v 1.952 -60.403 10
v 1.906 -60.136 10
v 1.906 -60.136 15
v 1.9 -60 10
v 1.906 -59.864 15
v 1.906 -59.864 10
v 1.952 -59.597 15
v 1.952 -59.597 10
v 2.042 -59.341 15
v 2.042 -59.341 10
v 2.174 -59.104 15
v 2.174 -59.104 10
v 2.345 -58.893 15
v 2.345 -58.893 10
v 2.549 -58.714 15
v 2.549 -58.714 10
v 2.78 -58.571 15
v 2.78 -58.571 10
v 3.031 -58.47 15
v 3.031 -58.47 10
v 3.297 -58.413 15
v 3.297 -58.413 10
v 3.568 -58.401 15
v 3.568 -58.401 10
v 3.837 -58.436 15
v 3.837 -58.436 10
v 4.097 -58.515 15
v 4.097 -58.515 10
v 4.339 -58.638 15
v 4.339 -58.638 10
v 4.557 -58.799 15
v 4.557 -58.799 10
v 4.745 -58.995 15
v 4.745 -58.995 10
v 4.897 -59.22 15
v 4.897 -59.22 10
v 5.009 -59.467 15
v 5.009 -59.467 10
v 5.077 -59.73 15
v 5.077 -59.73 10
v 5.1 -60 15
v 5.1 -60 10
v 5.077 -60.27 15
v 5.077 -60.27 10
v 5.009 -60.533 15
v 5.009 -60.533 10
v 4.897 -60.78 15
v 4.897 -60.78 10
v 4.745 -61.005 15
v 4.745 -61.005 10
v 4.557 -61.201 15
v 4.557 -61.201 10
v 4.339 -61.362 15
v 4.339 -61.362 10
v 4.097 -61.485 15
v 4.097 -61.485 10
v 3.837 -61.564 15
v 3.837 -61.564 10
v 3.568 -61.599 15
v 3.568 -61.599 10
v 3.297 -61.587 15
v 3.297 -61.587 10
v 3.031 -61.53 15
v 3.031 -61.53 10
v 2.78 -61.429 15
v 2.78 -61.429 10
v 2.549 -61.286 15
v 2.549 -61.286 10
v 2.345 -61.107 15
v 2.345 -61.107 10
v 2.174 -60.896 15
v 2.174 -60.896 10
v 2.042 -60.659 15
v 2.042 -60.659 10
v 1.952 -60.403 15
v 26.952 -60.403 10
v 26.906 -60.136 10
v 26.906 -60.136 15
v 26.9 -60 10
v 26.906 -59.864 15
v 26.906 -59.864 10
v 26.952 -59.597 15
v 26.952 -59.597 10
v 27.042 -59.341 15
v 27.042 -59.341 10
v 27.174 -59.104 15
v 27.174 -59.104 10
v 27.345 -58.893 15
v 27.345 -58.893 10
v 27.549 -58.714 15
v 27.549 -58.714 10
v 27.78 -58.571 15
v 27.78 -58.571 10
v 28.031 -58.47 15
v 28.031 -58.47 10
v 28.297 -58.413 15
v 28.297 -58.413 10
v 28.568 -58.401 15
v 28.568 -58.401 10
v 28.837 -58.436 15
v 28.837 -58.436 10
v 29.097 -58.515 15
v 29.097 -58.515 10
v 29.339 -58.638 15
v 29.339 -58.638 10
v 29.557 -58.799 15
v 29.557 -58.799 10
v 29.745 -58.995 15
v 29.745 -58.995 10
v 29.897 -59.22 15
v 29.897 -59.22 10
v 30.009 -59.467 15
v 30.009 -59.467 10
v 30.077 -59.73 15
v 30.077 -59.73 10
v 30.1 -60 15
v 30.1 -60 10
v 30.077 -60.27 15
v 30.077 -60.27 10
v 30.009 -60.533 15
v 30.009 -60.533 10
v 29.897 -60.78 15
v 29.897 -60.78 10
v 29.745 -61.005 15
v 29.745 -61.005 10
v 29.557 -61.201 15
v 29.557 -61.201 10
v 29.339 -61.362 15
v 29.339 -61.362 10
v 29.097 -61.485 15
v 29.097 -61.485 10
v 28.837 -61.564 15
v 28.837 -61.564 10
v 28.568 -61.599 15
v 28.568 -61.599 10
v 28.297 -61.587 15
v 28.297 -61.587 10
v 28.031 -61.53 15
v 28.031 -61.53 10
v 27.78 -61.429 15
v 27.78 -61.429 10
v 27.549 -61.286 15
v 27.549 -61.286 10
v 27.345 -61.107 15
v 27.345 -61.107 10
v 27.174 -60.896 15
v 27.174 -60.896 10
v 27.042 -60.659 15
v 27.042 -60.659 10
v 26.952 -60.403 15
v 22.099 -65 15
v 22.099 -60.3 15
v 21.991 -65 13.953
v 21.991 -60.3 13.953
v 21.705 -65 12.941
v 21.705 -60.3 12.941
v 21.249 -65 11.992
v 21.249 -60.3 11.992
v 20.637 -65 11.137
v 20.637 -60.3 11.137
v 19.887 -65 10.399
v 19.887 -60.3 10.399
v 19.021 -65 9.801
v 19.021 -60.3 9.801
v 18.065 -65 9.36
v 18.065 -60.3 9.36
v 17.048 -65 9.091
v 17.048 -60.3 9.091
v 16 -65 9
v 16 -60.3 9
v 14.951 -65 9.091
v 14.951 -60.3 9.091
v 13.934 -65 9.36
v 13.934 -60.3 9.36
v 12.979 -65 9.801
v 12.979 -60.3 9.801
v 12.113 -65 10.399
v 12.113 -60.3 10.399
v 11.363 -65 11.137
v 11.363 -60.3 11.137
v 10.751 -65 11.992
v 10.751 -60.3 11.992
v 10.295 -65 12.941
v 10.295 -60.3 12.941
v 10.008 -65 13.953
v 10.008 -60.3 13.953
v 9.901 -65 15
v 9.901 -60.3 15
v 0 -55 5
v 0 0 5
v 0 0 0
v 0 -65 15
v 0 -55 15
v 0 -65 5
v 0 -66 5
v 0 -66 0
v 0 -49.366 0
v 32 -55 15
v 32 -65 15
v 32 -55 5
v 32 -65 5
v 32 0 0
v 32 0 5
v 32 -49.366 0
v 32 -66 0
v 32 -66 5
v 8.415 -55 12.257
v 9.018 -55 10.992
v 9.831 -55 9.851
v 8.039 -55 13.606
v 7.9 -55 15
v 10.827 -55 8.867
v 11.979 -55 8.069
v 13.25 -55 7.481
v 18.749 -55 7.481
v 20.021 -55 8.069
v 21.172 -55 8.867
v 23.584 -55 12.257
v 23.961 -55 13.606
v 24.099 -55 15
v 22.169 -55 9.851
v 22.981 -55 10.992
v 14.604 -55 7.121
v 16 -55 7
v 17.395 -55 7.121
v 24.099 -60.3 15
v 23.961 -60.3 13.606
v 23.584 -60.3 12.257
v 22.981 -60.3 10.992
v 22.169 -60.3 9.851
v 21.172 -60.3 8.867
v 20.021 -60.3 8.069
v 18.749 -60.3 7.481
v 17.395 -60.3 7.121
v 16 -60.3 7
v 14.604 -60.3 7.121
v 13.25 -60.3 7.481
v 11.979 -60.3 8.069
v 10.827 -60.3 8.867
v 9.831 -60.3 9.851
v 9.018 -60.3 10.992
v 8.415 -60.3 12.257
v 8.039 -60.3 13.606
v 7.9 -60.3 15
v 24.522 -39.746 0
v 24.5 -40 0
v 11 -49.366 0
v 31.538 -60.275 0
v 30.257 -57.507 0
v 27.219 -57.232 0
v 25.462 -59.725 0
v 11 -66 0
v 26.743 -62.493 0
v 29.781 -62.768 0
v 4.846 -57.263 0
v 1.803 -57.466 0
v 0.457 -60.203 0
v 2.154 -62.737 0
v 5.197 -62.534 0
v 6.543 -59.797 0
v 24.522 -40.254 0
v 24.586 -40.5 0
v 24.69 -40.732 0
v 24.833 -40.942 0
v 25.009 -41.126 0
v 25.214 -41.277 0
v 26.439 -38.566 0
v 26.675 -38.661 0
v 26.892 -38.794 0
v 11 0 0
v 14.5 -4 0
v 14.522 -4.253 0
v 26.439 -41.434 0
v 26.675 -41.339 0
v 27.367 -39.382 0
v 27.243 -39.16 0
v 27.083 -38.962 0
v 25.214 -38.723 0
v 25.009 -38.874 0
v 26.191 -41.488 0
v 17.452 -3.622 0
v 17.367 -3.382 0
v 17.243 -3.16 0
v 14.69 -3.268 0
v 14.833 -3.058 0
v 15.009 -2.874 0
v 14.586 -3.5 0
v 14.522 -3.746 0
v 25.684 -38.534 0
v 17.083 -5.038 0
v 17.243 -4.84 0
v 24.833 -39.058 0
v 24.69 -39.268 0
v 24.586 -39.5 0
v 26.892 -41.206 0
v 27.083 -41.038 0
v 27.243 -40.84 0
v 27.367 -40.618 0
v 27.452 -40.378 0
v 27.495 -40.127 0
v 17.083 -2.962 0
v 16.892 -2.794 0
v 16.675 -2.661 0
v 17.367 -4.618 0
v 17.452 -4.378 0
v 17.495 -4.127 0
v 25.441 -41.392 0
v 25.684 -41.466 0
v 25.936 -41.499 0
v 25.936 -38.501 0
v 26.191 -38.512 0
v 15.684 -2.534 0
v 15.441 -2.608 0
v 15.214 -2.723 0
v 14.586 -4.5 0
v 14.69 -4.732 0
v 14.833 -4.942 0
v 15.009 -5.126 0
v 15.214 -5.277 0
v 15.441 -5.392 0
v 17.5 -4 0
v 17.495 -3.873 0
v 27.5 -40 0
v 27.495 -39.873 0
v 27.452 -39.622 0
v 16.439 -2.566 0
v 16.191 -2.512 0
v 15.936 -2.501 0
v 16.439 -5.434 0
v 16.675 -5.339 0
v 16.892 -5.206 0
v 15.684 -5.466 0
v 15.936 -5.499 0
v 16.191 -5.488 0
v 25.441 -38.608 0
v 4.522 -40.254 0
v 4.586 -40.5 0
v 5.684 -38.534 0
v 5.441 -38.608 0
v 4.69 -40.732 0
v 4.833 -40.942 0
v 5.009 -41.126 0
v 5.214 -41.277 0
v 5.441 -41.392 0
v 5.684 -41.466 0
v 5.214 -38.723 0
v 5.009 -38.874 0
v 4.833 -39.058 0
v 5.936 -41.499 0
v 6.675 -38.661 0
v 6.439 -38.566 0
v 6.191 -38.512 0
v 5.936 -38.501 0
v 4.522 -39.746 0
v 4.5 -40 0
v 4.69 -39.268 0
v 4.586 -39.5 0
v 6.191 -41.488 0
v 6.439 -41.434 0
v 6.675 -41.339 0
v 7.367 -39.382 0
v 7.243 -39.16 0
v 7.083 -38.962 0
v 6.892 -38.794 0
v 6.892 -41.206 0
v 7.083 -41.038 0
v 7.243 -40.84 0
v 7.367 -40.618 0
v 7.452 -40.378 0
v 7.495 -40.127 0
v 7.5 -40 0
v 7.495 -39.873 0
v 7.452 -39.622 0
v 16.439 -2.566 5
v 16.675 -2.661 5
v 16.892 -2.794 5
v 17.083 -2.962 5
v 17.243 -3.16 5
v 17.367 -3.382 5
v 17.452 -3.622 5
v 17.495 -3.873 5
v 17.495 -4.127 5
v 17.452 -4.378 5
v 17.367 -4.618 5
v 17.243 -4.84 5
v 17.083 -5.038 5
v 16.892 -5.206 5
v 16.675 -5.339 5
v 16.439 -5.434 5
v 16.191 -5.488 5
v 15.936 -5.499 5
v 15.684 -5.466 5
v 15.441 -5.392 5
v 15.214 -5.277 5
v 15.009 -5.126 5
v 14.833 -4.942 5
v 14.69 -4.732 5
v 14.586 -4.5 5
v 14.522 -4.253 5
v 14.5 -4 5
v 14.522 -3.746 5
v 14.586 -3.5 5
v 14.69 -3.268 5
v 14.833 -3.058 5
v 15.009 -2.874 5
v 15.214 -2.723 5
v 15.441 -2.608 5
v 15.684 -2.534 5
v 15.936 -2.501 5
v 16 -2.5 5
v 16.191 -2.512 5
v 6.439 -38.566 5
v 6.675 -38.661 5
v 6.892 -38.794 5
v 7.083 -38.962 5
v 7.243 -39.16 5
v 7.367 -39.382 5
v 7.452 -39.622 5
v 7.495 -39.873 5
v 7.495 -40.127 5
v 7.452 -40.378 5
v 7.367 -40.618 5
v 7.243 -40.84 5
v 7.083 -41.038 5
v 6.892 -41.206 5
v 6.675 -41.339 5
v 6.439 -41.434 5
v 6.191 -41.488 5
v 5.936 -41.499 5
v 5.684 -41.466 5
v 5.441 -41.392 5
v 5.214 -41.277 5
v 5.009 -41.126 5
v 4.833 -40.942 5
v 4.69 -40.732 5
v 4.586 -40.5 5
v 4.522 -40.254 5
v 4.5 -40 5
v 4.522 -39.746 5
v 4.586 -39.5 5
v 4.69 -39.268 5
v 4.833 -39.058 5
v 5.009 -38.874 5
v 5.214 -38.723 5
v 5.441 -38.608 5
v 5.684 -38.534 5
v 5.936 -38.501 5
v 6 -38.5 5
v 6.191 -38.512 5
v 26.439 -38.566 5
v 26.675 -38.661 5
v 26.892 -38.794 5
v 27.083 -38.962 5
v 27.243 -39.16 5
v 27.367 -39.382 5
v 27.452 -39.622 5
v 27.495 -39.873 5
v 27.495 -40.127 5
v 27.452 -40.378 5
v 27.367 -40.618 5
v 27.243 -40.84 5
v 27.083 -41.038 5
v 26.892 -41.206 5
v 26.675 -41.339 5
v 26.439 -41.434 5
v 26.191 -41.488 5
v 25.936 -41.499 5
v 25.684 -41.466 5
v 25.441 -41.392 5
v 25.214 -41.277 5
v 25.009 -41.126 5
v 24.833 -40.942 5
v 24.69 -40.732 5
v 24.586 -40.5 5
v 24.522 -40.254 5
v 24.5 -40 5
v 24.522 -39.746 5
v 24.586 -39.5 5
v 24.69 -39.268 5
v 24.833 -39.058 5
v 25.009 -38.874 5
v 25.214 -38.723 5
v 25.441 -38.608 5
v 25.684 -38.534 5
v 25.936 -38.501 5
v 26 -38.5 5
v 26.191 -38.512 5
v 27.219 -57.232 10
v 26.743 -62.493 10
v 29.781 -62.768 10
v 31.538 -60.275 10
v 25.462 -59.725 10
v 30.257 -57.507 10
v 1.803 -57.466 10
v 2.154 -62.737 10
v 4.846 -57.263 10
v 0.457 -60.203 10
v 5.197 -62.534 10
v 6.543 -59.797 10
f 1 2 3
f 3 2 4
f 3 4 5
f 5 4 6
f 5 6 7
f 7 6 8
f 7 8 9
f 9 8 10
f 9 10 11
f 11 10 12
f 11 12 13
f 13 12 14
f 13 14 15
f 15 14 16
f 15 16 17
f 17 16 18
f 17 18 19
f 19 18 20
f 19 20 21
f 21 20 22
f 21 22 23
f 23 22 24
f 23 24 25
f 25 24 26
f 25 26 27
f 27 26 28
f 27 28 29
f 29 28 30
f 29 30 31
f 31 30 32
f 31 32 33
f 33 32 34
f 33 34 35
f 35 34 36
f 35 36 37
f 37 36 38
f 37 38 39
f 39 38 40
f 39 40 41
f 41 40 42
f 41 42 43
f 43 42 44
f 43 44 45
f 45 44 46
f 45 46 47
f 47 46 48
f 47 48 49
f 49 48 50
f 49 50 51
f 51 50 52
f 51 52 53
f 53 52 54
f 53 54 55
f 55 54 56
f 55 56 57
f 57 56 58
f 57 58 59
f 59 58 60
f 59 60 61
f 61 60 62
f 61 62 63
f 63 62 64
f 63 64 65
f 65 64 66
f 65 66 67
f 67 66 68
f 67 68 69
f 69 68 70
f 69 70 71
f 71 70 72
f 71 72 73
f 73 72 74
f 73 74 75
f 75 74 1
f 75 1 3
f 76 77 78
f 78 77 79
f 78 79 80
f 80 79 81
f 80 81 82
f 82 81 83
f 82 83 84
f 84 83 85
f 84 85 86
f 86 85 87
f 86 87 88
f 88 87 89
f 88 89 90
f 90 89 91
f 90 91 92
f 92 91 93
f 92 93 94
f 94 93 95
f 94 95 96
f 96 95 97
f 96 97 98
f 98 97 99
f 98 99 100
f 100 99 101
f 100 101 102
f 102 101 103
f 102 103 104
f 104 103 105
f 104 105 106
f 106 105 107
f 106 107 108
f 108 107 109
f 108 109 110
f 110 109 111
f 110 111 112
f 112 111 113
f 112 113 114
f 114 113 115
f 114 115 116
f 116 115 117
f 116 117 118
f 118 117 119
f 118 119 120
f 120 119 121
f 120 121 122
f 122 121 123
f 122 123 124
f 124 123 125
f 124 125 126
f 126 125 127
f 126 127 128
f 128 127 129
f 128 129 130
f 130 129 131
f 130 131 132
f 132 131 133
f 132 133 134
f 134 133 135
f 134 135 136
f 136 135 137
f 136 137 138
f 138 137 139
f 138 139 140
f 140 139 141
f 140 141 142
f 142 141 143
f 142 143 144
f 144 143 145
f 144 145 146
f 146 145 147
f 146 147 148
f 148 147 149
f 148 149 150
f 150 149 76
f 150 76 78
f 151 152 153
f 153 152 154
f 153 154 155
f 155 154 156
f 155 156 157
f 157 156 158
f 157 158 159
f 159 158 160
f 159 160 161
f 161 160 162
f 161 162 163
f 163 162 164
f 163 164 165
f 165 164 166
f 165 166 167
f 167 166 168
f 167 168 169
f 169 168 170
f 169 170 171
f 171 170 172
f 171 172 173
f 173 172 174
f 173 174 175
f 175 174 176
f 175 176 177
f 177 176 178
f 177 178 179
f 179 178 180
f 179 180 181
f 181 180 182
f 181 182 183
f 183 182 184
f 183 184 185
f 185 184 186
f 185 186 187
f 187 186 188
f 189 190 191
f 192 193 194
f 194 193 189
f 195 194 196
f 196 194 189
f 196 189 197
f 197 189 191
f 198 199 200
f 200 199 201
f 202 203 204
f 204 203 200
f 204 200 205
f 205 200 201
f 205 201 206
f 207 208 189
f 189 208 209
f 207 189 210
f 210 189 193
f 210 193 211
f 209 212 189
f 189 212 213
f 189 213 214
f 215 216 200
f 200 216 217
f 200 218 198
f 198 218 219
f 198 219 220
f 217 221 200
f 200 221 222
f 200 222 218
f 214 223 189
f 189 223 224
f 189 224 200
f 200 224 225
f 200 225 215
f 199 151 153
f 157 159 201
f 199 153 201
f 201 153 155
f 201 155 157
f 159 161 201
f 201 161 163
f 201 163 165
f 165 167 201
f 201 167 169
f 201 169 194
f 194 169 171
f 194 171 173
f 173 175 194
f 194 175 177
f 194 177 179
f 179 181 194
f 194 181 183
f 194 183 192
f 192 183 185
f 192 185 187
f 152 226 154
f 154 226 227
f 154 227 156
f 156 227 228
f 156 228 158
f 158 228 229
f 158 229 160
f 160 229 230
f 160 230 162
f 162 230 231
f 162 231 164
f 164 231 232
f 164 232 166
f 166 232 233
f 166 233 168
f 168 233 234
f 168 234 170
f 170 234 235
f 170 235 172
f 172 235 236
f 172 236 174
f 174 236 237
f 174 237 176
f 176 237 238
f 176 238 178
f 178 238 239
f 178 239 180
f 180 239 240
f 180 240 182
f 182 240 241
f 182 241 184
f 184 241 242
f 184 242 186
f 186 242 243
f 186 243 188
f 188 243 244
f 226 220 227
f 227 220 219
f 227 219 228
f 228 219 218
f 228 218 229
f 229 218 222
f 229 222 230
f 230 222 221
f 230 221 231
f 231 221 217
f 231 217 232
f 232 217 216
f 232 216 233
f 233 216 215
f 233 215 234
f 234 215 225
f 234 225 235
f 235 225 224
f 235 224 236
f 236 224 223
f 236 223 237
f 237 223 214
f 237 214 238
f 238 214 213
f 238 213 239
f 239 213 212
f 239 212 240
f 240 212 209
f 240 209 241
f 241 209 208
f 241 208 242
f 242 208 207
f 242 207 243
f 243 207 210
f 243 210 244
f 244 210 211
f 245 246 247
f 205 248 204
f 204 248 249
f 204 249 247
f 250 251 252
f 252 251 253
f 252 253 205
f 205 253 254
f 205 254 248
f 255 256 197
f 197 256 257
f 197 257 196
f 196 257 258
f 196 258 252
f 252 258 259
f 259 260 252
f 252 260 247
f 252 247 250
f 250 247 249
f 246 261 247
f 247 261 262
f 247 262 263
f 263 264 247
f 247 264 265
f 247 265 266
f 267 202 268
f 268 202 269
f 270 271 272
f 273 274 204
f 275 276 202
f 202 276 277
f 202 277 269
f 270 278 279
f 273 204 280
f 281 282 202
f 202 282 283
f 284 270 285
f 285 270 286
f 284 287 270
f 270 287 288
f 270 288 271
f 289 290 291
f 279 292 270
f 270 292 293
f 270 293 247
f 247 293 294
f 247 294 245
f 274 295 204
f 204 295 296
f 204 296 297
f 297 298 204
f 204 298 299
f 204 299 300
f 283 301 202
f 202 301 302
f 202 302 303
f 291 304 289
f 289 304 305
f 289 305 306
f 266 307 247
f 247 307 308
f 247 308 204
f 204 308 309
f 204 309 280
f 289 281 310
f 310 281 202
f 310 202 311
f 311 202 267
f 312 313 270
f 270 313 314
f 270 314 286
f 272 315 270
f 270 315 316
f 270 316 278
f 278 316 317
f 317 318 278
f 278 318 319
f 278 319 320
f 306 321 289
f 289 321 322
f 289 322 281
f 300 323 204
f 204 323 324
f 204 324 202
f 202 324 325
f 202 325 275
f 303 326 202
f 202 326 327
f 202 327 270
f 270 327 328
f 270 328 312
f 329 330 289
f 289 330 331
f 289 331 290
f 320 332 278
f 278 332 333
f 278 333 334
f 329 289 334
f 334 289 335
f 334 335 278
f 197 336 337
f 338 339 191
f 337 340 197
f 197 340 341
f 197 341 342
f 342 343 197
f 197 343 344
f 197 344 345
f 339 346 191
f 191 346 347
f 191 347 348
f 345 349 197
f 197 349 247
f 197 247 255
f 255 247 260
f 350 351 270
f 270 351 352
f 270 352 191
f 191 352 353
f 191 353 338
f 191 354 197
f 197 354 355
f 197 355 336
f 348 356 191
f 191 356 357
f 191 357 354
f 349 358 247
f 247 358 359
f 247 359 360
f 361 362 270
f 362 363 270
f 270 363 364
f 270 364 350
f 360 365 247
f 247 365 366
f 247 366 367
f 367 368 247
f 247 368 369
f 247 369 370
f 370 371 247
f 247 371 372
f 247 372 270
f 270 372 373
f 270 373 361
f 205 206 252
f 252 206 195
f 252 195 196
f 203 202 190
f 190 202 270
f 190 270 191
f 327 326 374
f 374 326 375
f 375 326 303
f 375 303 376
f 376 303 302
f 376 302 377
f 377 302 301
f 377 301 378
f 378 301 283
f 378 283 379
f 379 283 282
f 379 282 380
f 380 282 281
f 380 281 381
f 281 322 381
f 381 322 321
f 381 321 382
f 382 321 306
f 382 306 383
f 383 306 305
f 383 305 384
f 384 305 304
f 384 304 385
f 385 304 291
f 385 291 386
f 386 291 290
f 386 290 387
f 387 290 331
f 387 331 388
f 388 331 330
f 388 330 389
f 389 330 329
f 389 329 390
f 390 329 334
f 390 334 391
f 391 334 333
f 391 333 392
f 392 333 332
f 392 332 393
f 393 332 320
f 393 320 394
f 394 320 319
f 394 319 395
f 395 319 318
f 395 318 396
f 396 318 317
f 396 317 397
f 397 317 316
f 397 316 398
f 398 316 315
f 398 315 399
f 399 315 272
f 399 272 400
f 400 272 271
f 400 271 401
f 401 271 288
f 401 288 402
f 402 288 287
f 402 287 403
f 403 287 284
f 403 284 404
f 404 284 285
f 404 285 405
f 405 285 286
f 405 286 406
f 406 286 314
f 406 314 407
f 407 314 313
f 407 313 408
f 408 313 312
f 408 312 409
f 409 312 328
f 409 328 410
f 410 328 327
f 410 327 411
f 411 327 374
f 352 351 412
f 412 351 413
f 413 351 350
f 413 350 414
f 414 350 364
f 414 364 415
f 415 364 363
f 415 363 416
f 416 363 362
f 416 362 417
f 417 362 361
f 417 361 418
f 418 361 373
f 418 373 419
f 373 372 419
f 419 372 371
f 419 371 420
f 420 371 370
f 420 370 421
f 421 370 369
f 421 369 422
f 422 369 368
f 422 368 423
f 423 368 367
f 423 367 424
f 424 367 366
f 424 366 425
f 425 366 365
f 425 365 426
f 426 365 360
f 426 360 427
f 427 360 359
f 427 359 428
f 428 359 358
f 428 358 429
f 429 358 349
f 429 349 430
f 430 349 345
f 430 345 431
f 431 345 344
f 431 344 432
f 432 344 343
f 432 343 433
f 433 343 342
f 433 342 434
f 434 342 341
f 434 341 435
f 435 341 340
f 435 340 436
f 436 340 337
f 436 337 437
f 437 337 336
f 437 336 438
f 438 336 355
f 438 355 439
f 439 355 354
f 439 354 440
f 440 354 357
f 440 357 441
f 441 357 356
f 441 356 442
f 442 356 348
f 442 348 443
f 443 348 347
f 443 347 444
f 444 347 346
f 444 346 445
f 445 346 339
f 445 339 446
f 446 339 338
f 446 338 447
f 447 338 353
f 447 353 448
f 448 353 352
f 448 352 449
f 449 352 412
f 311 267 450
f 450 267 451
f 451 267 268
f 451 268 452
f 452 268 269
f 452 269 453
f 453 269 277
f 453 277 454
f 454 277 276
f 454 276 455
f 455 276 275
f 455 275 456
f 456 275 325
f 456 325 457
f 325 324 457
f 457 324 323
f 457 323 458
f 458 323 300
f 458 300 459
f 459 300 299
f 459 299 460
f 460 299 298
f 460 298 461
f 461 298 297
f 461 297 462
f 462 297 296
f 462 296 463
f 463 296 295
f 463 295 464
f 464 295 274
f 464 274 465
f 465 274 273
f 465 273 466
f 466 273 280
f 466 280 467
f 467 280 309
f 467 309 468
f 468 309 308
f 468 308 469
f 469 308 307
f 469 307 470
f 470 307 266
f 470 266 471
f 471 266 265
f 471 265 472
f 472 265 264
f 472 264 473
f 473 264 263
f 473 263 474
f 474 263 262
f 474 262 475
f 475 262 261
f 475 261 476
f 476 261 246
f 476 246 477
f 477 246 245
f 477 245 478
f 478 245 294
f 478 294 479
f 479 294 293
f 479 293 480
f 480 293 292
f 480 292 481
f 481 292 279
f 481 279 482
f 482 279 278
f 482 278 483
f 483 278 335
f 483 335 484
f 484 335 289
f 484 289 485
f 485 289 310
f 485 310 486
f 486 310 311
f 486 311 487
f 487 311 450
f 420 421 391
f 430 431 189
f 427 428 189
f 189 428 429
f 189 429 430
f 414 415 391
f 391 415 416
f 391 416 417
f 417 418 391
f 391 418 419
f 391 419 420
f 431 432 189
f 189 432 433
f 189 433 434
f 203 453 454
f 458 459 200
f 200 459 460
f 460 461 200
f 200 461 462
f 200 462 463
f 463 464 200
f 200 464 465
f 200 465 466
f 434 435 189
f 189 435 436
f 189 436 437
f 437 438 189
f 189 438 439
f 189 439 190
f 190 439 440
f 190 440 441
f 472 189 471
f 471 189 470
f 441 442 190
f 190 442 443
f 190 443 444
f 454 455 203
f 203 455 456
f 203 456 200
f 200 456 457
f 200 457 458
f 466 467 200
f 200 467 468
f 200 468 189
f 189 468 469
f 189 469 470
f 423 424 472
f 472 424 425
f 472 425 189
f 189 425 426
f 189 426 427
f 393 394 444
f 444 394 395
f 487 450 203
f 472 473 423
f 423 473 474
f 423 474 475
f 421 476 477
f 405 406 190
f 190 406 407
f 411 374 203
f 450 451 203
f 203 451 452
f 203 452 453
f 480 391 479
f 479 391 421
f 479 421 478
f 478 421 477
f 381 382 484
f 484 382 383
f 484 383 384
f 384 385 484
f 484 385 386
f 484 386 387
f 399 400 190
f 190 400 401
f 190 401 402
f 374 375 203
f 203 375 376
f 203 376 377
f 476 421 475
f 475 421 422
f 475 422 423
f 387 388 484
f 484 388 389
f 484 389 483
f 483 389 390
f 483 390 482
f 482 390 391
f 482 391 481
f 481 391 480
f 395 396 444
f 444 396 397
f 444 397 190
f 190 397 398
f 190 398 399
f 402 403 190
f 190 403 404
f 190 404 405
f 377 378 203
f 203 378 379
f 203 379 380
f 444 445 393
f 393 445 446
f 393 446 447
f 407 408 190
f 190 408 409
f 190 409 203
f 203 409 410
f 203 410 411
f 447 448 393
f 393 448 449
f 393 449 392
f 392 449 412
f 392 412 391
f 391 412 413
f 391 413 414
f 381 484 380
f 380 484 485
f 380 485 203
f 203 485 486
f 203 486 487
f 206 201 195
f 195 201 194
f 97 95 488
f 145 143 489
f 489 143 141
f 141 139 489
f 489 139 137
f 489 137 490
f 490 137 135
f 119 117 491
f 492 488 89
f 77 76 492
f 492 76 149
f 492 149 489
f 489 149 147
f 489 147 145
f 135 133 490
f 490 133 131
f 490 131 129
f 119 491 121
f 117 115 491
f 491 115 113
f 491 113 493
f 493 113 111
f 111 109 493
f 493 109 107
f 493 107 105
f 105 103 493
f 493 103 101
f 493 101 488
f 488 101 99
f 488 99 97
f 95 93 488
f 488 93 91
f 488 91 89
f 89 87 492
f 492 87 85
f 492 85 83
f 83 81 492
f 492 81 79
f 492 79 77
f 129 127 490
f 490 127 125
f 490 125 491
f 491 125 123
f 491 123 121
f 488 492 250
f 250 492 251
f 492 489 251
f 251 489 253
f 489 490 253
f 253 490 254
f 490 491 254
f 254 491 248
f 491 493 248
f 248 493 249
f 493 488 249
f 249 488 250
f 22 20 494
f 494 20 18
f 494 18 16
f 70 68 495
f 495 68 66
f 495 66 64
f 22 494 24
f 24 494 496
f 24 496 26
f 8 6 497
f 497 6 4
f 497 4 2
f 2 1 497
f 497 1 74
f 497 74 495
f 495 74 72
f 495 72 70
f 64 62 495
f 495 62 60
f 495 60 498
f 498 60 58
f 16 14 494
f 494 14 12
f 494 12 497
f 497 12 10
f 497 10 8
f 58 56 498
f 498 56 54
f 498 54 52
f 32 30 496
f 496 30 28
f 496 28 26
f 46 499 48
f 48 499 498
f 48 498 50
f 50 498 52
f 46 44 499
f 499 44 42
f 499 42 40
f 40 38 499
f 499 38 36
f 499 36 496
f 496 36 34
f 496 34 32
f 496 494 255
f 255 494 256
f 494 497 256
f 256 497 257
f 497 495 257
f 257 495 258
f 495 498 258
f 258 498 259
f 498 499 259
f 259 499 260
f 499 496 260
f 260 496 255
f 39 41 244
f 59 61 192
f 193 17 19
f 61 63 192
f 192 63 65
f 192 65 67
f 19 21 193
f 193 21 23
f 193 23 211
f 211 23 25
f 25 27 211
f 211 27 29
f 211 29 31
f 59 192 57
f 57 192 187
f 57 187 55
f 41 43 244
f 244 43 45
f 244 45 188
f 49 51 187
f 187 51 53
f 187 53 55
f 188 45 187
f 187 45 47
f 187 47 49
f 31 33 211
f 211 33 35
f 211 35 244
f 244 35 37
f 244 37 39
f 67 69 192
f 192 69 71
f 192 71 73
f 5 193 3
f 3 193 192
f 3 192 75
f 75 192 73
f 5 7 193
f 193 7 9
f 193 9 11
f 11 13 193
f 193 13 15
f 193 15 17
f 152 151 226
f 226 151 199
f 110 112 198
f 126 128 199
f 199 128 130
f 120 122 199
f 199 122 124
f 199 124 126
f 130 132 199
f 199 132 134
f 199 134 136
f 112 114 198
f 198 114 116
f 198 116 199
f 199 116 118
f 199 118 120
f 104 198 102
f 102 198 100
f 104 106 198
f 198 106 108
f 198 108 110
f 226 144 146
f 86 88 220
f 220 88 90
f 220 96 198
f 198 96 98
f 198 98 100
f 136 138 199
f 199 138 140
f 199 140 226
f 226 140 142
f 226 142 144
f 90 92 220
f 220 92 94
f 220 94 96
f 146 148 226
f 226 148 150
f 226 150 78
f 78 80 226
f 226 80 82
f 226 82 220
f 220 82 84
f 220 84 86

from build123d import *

# Parameters (mm, degrees)
SKETCH1_W           = 32
SKETCH1_H           = 66
SKETCH1_R           = 1.5
BOSS_EXTRUDE1_DEPTH = 25
SKETCH3_W           = 20
SKETCH3_H           = 55
SKETCH3_H_2         = 1
CUT_EXTRUDE1_DEPTH  = 33
SKETCH4_R           = 6.1
CUT_EXTRUDE6_DEPTH  = 12
SKETCH5_R           = 8.1
CUT_EXTRUDE7_DEPTH  = 5.3
SKETCH7_R           = 1.6
CUT_EXTRUDE8_DEPTH  = 26
CUT_EXTRUDE9_DEPTH  = 10
SKETCH10_W          = 32
SKETCH10_H          = 10
CUT_EXTRUDE10_DEPTH = 10


with BuildPart() as part:
    # Sketch1 → Boss-Extrude1 (new body)
    with BuildSketch(Plane.XY):
        with Locations((16, -33)):
            Rectangle(SKETCH1_W, SKETCH1_H)
        with Locations((16, -4)):
            Circle(SKETCH1_R, mode=Mode.SUBTRACT)
        with Locations((6, -40)):
            Circle(SKETCH1_R, mode=Mode.SUBTRACT)
        with Locations((26, -40)):
            Circle(SKETCH1_R, mode=Mode.SUBTRACT)
    extrude(amount=BOSS_EXTRUDE1_DEPTH)

    # Sketch3 → Cut-Extrude1 (cut, through all)
    with BuildSketch(Plane.ZY):
        with Locations((15, -27.5)):
            Rectangle(SKETCH3_W, SKETCH3_H)
        with Locations((15, -65.5)):
            Rectangle(SKETCH3_W, SKETCH3_H_2)
    extrude(amount=-CUT_EXTRUDE1_DEPTH, mode=Mode.SUBTRACT)

    # Sketch4 → Cut-Extrude6 (cut, through all)
    with BuildSketch(Plane(origin=(0, -55, 0), x_dir=(1, 0, 0), z_dir=(0, 1, 0))):
        with Locations((15.999687497, -15.1)):
            Circle(SKETCH4_R)
    extrude(amount=-CUT_EXTRUDE6_DEPTH, mode=Mode.SUBTRACT)

    # Sketch5 → Cut-Extrude7 (cut)
    with BuildSketch(Plane(origin=(0, -55, 0), x_dir=(1, 0, 0), z_dir=(0, 1, 0))):
        with Locations((15.999687497, -15.1)):
            Circle(SKETCH5_R)
    extrude(amount=-CUT_EXTRUDE7_DEPTH, mode=Mode.SUBTRACT)

    # Sketch7 → Cut-Extrude8 (cut, through all)
    with BuildSketch(Plane.XY.offset(25)):
        with Locations((3.5, -60)):
            Circle(SKETCH7_R)
        with Locations((28.5, -60)):
            Circle(SKETCH7_R)
    extrude(amount=-CUT_EXTRUDE8_DEPTH, mode=Mode.SUBTRACT)

    # Sketch9 → Cut-Extrude9 (cut)
    with BuildSketch(Plane(origin=(0, 0, 0), x_dir=(-1, 0, 0), z_dir=(0, 0, -1))):
        Polygon((-27.219059817, -57.232023799), (-30.256667615, -57.50668516), (-31.537607798, -60.274661361), (-29.780940183, -62.767976201), (-26.743332385, -62.49331484), (-25.462392202, -59.725338639), align=None)
        Polygon((-4.846024949, -57.263082603), (-6.543252468, -59.797233102), (-5.197227519, -62.534150498), (-2.153975051, -62.736917397), (-0.456747532, -60.202766898), (-1.802772481, -57.465849502), align=None)
    extrude(amount=-CUT_EXTRUDE9_DEPTH, mode=Mode.SUBTRACT)

    # Sketch10 → Cut-Extrude10 (cut)
    with BuildSketch(Plane.XY.offset(25)):
        with Locations((16, -60)):
            Rectangle(SKETCH10_W, SKETCH10_H)
    extrude(amount=-CUT_EXTRUDE10_DEPTH, mode=Mode.SUBTRACT)


solid = part.part
